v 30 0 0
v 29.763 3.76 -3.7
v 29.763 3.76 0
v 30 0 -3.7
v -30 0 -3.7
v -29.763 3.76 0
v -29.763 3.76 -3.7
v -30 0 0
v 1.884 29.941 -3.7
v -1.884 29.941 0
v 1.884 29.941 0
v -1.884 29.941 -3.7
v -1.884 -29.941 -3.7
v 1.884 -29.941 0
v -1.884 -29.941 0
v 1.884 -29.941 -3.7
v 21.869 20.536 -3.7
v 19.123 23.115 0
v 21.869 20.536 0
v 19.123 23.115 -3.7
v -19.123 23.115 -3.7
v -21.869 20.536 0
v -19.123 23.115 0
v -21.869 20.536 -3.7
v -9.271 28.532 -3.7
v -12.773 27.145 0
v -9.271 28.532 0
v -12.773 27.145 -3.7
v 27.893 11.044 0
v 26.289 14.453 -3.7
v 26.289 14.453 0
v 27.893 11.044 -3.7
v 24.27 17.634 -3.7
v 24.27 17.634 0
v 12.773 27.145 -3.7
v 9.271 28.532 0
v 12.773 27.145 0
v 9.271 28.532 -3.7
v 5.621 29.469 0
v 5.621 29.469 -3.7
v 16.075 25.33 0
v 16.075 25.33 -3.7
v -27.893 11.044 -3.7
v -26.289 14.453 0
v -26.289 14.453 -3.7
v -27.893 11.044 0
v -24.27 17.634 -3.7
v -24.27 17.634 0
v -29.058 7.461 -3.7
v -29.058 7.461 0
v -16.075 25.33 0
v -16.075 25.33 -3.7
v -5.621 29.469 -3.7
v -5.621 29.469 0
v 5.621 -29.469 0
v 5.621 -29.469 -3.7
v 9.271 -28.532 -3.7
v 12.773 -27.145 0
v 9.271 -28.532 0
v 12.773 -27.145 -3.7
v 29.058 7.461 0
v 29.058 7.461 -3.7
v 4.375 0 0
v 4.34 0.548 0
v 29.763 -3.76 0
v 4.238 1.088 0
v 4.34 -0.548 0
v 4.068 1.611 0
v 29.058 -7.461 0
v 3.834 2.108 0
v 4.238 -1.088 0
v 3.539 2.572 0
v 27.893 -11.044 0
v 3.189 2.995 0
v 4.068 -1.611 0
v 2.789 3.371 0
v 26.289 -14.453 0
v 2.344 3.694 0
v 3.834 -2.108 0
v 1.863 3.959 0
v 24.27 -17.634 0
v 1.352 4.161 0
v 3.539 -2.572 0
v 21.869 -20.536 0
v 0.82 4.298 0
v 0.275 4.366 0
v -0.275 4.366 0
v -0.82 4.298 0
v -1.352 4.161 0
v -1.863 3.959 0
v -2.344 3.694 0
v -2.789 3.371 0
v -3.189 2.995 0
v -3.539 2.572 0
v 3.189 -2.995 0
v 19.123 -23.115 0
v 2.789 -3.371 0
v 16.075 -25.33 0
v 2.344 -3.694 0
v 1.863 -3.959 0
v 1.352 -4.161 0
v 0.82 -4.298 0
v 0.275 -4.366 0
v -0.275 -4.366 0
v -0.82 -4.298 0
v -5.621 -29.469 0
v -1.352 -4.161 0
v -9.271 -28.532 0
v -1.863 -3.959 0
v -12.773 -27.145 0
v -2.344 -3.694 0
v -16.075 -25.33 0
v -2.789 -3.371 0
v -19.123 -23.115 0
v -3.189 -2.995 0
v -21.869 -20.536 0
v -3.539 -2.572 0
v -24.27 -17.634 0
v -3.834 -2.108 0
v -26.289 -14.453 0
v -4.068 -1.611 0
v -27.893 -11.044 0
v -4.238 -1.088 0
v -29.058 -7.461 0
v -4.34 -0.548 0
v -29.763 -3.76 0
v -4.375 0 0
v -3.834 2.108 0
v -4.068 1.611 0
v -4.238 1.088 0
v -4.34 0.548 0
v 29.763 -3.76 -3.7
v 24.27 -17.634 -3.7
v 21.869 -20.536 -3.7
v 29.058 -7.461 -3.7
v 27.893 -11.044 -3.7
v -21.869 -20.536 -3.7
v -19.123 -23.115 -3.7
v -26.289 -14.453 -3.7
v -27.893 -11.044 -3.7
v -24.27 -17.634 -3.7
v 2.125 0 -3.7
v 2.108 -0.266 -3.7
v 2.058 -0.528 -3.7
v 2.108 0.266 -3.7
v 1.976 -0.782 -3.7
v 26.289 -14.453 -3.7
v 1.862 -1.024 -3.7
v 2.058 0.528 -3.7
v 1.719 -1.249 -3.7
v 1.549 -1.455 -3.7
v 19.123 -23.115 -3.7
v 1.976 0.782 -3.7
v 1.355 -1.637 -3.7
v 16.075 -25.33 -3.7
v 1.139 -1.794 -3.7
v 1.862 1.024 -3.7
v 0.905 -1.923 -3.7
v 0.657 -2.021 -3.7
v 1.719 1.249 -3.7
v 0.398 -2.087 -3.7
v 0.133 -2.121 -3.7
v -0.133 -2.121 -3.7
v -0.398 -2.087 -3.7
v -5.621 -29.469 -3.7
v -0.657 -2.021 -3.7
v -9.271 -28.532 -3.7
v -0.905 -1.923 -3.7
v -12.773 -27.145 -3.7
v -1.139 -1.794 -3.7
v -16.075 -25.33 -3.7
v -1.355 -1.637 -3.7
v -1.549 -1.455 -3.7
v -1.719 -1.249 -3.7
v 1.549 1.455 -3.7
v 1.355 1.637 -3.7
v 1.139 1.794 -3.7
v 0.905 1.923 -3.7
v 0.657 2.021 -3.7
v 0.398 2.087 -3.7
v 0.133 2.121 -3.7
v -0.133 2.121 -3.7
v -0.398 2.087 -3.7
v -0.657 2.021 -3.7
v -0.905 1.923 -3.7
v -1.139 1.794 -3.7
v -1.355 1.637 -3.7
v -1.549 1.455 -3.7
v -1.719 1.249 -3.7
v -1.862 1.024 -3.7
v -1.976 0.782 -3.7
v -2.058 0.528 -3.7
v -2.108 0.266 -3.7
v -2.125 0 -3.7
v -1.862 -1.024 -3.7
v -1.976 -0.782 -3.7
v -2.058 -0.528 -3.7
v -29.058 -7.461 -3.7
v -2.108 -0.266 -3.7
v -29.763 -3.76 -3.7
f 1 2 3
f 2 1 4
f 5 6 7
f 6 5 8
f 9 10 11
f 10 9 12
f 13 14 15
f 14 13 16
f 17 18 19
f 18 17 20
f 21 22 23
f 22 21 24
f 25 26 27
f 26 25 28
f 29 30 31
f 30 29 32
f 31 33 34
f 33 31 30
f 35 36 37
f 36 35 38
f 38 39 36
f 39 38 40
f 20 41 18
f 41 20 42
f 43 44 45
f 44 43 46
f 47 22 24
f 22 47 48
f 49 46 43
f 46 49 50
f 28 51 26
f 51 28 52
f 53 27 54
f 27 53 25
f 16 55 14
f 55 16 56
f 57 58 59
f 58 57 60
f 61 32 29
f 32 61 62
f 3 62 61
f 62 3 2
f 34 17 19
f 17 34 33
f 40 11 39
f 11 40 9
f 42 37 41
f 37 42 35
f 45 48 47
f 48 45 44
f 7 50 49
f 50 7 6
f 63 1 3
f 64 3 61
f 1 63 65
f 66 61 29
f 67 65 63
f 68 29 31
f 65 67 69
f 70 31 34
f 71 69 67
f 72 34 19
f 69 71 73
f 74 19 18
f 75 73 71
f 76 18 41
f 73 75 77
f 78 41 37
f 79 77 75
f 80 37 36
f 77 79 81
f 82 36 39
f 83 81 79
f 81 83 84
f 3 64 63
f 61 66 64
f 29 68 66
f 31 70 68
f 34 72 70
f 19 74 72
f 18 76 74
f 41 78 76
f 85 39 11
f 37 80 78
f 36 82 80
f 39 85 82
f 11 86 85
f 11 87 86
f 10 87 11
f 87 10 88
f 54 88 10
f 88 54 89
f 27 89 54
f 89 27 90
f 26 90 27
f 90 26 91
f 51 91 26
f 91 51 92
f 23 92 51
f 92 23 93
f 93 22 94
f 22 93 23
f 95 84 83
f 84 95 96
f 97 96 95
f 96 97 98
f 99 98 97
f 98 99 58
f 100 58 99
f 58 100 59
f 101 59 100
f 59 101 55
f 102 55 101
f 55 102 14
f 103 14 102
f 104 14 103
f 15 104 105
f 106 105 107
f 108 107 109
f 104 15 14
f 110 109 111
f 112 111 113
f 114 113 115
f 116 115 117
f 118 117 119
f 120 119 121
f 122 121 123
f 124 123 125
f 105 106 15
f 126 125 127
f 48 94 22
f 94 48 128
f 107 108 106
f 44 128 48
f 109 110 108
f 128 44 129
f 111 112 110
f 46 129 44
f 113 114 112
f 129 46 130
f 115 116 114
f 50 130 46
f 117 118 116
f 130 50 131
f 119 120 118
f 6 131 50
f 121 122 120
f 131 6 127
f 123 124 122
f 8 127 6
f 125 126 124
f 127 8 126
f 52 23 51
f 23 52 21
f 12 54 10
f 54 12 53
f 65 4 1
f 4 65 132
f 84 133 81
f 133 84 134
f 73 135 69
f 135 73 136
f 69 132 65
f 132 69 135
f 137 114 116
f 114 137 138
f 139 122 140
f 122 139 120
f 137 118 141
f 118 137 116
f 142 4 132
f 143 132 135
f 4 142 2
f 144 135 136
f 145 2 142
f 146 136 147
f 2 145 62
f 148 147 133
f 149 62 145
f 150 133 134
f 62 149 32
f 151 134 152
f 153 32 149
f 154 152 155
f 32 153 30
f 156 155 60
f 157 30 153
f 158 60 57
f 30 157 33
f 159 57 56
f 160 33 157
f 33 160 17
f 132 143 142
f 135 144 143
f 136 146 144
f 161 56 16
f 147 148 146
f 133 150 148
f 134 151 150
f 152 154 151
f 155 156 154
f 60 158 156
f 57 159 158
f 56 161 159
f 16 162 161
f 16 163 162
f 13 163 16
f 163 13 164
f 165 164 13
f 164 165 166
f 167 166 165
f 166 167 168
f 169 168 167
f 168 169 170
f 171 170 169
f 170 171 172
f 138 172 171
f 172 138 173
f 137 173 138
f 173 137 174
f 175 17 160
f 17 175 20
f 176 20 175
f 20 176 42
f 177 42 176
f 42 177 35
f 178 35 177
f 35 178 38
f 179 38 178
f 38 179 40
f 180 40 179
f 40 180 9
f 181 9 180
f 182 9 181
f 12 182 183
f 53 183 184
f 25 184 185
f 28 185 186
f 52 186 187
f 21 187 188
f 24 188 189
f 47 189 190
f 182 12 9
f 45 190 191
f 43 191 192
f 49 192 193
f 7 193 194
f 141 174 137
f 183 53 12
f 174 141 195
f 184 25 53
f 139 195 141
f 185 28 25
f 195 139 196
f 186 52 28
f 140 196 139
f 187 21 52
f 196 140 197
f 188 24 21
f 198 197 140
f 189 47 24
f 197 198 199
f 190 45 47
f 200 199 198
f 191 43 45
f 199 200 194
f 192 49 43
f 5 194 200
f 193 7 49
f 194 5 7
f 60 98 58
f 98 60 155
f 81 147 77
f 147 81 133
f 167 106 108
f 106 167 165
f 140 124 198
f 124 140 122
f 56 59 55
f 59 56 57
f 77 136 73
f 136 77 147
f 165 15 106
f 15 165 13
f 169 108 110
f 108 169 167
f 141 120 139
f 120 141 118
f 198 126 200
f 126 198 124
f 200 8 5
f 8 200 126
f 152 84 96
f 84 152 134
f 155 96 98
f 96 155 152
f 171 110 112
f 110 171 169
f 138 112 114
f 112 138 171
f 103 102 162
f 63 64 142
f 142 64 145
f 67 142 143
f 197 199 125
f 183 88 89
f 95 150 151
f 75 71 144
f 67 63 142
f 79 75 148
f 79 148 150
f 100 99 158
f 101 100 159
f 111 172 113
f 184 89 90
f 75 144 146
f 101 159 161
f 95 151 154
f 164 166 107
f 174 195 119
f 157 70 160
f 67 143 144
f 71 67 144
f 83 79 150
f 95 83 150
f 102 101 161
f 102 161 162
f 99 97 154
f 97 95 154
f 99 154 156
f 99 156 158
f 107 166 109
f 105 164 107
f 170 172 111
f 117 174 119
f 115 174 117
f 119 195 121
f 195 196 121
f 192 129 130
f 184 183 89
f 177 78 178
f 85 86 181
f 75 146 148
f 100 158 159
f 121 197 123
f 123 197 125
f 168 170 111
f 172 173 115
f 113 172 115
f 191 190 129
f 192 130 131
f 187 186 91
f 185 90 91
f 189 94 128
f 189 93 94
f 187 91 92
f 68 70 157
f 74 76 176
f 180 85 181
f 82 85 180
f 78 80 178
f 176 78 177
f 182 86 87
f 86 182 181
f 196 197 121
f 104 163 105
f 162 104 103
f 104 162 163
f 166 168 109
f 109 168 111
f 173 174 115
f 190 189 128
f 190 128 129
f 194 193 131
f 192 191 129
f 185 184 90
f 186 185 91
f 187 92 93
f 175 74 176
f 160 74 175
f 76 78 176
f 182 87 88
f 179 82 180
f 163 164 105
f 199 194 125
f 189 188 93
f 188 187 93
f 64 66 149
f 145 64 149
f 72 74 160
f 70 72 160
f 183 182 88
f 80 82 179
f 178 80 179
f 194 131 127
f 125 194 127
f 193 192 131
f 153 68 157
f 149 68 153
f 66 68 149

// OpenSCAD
$fn = 50;


difference() {
	union() {
		translate(v = [0, 0, -3.7000000000]) {
			cylinder(h = 3.7000000000, r = 30.0000000000);
		}
		translate(v = [0, 0, -3.7000000000]) {
			cylinder(h = 3.7000000000, r = 2.8750000000);
		}
	}
	union() {
		translate(v = [0, 0, 0]) {
			rotate(a = [0, 0, 0]) {
				difference() {
					union() {
						#translate(v = [0, 0, -3.7000000000]) {
							cylinder(h = 3.7000000000, r = 2.0000000000);
						}
						#translate(v = [0, 0, -3.7000000000]) {
							cylinder(h = 3.7000000000, r1 = 2.1250000000, r2 = 4.3750000000);
						}
						#translate(v = [0, 0, -3.7000000000]) {
							cylinder(h = 3.7000000000, r = 2.1250000000);
						}
						#translate(v = [0, 0, -3.7000000000]) {
							cylinder(h = 3.7000000000, r = 2.0000000000);
						}
					}
					union();
				}
			}
		}
	}
}
